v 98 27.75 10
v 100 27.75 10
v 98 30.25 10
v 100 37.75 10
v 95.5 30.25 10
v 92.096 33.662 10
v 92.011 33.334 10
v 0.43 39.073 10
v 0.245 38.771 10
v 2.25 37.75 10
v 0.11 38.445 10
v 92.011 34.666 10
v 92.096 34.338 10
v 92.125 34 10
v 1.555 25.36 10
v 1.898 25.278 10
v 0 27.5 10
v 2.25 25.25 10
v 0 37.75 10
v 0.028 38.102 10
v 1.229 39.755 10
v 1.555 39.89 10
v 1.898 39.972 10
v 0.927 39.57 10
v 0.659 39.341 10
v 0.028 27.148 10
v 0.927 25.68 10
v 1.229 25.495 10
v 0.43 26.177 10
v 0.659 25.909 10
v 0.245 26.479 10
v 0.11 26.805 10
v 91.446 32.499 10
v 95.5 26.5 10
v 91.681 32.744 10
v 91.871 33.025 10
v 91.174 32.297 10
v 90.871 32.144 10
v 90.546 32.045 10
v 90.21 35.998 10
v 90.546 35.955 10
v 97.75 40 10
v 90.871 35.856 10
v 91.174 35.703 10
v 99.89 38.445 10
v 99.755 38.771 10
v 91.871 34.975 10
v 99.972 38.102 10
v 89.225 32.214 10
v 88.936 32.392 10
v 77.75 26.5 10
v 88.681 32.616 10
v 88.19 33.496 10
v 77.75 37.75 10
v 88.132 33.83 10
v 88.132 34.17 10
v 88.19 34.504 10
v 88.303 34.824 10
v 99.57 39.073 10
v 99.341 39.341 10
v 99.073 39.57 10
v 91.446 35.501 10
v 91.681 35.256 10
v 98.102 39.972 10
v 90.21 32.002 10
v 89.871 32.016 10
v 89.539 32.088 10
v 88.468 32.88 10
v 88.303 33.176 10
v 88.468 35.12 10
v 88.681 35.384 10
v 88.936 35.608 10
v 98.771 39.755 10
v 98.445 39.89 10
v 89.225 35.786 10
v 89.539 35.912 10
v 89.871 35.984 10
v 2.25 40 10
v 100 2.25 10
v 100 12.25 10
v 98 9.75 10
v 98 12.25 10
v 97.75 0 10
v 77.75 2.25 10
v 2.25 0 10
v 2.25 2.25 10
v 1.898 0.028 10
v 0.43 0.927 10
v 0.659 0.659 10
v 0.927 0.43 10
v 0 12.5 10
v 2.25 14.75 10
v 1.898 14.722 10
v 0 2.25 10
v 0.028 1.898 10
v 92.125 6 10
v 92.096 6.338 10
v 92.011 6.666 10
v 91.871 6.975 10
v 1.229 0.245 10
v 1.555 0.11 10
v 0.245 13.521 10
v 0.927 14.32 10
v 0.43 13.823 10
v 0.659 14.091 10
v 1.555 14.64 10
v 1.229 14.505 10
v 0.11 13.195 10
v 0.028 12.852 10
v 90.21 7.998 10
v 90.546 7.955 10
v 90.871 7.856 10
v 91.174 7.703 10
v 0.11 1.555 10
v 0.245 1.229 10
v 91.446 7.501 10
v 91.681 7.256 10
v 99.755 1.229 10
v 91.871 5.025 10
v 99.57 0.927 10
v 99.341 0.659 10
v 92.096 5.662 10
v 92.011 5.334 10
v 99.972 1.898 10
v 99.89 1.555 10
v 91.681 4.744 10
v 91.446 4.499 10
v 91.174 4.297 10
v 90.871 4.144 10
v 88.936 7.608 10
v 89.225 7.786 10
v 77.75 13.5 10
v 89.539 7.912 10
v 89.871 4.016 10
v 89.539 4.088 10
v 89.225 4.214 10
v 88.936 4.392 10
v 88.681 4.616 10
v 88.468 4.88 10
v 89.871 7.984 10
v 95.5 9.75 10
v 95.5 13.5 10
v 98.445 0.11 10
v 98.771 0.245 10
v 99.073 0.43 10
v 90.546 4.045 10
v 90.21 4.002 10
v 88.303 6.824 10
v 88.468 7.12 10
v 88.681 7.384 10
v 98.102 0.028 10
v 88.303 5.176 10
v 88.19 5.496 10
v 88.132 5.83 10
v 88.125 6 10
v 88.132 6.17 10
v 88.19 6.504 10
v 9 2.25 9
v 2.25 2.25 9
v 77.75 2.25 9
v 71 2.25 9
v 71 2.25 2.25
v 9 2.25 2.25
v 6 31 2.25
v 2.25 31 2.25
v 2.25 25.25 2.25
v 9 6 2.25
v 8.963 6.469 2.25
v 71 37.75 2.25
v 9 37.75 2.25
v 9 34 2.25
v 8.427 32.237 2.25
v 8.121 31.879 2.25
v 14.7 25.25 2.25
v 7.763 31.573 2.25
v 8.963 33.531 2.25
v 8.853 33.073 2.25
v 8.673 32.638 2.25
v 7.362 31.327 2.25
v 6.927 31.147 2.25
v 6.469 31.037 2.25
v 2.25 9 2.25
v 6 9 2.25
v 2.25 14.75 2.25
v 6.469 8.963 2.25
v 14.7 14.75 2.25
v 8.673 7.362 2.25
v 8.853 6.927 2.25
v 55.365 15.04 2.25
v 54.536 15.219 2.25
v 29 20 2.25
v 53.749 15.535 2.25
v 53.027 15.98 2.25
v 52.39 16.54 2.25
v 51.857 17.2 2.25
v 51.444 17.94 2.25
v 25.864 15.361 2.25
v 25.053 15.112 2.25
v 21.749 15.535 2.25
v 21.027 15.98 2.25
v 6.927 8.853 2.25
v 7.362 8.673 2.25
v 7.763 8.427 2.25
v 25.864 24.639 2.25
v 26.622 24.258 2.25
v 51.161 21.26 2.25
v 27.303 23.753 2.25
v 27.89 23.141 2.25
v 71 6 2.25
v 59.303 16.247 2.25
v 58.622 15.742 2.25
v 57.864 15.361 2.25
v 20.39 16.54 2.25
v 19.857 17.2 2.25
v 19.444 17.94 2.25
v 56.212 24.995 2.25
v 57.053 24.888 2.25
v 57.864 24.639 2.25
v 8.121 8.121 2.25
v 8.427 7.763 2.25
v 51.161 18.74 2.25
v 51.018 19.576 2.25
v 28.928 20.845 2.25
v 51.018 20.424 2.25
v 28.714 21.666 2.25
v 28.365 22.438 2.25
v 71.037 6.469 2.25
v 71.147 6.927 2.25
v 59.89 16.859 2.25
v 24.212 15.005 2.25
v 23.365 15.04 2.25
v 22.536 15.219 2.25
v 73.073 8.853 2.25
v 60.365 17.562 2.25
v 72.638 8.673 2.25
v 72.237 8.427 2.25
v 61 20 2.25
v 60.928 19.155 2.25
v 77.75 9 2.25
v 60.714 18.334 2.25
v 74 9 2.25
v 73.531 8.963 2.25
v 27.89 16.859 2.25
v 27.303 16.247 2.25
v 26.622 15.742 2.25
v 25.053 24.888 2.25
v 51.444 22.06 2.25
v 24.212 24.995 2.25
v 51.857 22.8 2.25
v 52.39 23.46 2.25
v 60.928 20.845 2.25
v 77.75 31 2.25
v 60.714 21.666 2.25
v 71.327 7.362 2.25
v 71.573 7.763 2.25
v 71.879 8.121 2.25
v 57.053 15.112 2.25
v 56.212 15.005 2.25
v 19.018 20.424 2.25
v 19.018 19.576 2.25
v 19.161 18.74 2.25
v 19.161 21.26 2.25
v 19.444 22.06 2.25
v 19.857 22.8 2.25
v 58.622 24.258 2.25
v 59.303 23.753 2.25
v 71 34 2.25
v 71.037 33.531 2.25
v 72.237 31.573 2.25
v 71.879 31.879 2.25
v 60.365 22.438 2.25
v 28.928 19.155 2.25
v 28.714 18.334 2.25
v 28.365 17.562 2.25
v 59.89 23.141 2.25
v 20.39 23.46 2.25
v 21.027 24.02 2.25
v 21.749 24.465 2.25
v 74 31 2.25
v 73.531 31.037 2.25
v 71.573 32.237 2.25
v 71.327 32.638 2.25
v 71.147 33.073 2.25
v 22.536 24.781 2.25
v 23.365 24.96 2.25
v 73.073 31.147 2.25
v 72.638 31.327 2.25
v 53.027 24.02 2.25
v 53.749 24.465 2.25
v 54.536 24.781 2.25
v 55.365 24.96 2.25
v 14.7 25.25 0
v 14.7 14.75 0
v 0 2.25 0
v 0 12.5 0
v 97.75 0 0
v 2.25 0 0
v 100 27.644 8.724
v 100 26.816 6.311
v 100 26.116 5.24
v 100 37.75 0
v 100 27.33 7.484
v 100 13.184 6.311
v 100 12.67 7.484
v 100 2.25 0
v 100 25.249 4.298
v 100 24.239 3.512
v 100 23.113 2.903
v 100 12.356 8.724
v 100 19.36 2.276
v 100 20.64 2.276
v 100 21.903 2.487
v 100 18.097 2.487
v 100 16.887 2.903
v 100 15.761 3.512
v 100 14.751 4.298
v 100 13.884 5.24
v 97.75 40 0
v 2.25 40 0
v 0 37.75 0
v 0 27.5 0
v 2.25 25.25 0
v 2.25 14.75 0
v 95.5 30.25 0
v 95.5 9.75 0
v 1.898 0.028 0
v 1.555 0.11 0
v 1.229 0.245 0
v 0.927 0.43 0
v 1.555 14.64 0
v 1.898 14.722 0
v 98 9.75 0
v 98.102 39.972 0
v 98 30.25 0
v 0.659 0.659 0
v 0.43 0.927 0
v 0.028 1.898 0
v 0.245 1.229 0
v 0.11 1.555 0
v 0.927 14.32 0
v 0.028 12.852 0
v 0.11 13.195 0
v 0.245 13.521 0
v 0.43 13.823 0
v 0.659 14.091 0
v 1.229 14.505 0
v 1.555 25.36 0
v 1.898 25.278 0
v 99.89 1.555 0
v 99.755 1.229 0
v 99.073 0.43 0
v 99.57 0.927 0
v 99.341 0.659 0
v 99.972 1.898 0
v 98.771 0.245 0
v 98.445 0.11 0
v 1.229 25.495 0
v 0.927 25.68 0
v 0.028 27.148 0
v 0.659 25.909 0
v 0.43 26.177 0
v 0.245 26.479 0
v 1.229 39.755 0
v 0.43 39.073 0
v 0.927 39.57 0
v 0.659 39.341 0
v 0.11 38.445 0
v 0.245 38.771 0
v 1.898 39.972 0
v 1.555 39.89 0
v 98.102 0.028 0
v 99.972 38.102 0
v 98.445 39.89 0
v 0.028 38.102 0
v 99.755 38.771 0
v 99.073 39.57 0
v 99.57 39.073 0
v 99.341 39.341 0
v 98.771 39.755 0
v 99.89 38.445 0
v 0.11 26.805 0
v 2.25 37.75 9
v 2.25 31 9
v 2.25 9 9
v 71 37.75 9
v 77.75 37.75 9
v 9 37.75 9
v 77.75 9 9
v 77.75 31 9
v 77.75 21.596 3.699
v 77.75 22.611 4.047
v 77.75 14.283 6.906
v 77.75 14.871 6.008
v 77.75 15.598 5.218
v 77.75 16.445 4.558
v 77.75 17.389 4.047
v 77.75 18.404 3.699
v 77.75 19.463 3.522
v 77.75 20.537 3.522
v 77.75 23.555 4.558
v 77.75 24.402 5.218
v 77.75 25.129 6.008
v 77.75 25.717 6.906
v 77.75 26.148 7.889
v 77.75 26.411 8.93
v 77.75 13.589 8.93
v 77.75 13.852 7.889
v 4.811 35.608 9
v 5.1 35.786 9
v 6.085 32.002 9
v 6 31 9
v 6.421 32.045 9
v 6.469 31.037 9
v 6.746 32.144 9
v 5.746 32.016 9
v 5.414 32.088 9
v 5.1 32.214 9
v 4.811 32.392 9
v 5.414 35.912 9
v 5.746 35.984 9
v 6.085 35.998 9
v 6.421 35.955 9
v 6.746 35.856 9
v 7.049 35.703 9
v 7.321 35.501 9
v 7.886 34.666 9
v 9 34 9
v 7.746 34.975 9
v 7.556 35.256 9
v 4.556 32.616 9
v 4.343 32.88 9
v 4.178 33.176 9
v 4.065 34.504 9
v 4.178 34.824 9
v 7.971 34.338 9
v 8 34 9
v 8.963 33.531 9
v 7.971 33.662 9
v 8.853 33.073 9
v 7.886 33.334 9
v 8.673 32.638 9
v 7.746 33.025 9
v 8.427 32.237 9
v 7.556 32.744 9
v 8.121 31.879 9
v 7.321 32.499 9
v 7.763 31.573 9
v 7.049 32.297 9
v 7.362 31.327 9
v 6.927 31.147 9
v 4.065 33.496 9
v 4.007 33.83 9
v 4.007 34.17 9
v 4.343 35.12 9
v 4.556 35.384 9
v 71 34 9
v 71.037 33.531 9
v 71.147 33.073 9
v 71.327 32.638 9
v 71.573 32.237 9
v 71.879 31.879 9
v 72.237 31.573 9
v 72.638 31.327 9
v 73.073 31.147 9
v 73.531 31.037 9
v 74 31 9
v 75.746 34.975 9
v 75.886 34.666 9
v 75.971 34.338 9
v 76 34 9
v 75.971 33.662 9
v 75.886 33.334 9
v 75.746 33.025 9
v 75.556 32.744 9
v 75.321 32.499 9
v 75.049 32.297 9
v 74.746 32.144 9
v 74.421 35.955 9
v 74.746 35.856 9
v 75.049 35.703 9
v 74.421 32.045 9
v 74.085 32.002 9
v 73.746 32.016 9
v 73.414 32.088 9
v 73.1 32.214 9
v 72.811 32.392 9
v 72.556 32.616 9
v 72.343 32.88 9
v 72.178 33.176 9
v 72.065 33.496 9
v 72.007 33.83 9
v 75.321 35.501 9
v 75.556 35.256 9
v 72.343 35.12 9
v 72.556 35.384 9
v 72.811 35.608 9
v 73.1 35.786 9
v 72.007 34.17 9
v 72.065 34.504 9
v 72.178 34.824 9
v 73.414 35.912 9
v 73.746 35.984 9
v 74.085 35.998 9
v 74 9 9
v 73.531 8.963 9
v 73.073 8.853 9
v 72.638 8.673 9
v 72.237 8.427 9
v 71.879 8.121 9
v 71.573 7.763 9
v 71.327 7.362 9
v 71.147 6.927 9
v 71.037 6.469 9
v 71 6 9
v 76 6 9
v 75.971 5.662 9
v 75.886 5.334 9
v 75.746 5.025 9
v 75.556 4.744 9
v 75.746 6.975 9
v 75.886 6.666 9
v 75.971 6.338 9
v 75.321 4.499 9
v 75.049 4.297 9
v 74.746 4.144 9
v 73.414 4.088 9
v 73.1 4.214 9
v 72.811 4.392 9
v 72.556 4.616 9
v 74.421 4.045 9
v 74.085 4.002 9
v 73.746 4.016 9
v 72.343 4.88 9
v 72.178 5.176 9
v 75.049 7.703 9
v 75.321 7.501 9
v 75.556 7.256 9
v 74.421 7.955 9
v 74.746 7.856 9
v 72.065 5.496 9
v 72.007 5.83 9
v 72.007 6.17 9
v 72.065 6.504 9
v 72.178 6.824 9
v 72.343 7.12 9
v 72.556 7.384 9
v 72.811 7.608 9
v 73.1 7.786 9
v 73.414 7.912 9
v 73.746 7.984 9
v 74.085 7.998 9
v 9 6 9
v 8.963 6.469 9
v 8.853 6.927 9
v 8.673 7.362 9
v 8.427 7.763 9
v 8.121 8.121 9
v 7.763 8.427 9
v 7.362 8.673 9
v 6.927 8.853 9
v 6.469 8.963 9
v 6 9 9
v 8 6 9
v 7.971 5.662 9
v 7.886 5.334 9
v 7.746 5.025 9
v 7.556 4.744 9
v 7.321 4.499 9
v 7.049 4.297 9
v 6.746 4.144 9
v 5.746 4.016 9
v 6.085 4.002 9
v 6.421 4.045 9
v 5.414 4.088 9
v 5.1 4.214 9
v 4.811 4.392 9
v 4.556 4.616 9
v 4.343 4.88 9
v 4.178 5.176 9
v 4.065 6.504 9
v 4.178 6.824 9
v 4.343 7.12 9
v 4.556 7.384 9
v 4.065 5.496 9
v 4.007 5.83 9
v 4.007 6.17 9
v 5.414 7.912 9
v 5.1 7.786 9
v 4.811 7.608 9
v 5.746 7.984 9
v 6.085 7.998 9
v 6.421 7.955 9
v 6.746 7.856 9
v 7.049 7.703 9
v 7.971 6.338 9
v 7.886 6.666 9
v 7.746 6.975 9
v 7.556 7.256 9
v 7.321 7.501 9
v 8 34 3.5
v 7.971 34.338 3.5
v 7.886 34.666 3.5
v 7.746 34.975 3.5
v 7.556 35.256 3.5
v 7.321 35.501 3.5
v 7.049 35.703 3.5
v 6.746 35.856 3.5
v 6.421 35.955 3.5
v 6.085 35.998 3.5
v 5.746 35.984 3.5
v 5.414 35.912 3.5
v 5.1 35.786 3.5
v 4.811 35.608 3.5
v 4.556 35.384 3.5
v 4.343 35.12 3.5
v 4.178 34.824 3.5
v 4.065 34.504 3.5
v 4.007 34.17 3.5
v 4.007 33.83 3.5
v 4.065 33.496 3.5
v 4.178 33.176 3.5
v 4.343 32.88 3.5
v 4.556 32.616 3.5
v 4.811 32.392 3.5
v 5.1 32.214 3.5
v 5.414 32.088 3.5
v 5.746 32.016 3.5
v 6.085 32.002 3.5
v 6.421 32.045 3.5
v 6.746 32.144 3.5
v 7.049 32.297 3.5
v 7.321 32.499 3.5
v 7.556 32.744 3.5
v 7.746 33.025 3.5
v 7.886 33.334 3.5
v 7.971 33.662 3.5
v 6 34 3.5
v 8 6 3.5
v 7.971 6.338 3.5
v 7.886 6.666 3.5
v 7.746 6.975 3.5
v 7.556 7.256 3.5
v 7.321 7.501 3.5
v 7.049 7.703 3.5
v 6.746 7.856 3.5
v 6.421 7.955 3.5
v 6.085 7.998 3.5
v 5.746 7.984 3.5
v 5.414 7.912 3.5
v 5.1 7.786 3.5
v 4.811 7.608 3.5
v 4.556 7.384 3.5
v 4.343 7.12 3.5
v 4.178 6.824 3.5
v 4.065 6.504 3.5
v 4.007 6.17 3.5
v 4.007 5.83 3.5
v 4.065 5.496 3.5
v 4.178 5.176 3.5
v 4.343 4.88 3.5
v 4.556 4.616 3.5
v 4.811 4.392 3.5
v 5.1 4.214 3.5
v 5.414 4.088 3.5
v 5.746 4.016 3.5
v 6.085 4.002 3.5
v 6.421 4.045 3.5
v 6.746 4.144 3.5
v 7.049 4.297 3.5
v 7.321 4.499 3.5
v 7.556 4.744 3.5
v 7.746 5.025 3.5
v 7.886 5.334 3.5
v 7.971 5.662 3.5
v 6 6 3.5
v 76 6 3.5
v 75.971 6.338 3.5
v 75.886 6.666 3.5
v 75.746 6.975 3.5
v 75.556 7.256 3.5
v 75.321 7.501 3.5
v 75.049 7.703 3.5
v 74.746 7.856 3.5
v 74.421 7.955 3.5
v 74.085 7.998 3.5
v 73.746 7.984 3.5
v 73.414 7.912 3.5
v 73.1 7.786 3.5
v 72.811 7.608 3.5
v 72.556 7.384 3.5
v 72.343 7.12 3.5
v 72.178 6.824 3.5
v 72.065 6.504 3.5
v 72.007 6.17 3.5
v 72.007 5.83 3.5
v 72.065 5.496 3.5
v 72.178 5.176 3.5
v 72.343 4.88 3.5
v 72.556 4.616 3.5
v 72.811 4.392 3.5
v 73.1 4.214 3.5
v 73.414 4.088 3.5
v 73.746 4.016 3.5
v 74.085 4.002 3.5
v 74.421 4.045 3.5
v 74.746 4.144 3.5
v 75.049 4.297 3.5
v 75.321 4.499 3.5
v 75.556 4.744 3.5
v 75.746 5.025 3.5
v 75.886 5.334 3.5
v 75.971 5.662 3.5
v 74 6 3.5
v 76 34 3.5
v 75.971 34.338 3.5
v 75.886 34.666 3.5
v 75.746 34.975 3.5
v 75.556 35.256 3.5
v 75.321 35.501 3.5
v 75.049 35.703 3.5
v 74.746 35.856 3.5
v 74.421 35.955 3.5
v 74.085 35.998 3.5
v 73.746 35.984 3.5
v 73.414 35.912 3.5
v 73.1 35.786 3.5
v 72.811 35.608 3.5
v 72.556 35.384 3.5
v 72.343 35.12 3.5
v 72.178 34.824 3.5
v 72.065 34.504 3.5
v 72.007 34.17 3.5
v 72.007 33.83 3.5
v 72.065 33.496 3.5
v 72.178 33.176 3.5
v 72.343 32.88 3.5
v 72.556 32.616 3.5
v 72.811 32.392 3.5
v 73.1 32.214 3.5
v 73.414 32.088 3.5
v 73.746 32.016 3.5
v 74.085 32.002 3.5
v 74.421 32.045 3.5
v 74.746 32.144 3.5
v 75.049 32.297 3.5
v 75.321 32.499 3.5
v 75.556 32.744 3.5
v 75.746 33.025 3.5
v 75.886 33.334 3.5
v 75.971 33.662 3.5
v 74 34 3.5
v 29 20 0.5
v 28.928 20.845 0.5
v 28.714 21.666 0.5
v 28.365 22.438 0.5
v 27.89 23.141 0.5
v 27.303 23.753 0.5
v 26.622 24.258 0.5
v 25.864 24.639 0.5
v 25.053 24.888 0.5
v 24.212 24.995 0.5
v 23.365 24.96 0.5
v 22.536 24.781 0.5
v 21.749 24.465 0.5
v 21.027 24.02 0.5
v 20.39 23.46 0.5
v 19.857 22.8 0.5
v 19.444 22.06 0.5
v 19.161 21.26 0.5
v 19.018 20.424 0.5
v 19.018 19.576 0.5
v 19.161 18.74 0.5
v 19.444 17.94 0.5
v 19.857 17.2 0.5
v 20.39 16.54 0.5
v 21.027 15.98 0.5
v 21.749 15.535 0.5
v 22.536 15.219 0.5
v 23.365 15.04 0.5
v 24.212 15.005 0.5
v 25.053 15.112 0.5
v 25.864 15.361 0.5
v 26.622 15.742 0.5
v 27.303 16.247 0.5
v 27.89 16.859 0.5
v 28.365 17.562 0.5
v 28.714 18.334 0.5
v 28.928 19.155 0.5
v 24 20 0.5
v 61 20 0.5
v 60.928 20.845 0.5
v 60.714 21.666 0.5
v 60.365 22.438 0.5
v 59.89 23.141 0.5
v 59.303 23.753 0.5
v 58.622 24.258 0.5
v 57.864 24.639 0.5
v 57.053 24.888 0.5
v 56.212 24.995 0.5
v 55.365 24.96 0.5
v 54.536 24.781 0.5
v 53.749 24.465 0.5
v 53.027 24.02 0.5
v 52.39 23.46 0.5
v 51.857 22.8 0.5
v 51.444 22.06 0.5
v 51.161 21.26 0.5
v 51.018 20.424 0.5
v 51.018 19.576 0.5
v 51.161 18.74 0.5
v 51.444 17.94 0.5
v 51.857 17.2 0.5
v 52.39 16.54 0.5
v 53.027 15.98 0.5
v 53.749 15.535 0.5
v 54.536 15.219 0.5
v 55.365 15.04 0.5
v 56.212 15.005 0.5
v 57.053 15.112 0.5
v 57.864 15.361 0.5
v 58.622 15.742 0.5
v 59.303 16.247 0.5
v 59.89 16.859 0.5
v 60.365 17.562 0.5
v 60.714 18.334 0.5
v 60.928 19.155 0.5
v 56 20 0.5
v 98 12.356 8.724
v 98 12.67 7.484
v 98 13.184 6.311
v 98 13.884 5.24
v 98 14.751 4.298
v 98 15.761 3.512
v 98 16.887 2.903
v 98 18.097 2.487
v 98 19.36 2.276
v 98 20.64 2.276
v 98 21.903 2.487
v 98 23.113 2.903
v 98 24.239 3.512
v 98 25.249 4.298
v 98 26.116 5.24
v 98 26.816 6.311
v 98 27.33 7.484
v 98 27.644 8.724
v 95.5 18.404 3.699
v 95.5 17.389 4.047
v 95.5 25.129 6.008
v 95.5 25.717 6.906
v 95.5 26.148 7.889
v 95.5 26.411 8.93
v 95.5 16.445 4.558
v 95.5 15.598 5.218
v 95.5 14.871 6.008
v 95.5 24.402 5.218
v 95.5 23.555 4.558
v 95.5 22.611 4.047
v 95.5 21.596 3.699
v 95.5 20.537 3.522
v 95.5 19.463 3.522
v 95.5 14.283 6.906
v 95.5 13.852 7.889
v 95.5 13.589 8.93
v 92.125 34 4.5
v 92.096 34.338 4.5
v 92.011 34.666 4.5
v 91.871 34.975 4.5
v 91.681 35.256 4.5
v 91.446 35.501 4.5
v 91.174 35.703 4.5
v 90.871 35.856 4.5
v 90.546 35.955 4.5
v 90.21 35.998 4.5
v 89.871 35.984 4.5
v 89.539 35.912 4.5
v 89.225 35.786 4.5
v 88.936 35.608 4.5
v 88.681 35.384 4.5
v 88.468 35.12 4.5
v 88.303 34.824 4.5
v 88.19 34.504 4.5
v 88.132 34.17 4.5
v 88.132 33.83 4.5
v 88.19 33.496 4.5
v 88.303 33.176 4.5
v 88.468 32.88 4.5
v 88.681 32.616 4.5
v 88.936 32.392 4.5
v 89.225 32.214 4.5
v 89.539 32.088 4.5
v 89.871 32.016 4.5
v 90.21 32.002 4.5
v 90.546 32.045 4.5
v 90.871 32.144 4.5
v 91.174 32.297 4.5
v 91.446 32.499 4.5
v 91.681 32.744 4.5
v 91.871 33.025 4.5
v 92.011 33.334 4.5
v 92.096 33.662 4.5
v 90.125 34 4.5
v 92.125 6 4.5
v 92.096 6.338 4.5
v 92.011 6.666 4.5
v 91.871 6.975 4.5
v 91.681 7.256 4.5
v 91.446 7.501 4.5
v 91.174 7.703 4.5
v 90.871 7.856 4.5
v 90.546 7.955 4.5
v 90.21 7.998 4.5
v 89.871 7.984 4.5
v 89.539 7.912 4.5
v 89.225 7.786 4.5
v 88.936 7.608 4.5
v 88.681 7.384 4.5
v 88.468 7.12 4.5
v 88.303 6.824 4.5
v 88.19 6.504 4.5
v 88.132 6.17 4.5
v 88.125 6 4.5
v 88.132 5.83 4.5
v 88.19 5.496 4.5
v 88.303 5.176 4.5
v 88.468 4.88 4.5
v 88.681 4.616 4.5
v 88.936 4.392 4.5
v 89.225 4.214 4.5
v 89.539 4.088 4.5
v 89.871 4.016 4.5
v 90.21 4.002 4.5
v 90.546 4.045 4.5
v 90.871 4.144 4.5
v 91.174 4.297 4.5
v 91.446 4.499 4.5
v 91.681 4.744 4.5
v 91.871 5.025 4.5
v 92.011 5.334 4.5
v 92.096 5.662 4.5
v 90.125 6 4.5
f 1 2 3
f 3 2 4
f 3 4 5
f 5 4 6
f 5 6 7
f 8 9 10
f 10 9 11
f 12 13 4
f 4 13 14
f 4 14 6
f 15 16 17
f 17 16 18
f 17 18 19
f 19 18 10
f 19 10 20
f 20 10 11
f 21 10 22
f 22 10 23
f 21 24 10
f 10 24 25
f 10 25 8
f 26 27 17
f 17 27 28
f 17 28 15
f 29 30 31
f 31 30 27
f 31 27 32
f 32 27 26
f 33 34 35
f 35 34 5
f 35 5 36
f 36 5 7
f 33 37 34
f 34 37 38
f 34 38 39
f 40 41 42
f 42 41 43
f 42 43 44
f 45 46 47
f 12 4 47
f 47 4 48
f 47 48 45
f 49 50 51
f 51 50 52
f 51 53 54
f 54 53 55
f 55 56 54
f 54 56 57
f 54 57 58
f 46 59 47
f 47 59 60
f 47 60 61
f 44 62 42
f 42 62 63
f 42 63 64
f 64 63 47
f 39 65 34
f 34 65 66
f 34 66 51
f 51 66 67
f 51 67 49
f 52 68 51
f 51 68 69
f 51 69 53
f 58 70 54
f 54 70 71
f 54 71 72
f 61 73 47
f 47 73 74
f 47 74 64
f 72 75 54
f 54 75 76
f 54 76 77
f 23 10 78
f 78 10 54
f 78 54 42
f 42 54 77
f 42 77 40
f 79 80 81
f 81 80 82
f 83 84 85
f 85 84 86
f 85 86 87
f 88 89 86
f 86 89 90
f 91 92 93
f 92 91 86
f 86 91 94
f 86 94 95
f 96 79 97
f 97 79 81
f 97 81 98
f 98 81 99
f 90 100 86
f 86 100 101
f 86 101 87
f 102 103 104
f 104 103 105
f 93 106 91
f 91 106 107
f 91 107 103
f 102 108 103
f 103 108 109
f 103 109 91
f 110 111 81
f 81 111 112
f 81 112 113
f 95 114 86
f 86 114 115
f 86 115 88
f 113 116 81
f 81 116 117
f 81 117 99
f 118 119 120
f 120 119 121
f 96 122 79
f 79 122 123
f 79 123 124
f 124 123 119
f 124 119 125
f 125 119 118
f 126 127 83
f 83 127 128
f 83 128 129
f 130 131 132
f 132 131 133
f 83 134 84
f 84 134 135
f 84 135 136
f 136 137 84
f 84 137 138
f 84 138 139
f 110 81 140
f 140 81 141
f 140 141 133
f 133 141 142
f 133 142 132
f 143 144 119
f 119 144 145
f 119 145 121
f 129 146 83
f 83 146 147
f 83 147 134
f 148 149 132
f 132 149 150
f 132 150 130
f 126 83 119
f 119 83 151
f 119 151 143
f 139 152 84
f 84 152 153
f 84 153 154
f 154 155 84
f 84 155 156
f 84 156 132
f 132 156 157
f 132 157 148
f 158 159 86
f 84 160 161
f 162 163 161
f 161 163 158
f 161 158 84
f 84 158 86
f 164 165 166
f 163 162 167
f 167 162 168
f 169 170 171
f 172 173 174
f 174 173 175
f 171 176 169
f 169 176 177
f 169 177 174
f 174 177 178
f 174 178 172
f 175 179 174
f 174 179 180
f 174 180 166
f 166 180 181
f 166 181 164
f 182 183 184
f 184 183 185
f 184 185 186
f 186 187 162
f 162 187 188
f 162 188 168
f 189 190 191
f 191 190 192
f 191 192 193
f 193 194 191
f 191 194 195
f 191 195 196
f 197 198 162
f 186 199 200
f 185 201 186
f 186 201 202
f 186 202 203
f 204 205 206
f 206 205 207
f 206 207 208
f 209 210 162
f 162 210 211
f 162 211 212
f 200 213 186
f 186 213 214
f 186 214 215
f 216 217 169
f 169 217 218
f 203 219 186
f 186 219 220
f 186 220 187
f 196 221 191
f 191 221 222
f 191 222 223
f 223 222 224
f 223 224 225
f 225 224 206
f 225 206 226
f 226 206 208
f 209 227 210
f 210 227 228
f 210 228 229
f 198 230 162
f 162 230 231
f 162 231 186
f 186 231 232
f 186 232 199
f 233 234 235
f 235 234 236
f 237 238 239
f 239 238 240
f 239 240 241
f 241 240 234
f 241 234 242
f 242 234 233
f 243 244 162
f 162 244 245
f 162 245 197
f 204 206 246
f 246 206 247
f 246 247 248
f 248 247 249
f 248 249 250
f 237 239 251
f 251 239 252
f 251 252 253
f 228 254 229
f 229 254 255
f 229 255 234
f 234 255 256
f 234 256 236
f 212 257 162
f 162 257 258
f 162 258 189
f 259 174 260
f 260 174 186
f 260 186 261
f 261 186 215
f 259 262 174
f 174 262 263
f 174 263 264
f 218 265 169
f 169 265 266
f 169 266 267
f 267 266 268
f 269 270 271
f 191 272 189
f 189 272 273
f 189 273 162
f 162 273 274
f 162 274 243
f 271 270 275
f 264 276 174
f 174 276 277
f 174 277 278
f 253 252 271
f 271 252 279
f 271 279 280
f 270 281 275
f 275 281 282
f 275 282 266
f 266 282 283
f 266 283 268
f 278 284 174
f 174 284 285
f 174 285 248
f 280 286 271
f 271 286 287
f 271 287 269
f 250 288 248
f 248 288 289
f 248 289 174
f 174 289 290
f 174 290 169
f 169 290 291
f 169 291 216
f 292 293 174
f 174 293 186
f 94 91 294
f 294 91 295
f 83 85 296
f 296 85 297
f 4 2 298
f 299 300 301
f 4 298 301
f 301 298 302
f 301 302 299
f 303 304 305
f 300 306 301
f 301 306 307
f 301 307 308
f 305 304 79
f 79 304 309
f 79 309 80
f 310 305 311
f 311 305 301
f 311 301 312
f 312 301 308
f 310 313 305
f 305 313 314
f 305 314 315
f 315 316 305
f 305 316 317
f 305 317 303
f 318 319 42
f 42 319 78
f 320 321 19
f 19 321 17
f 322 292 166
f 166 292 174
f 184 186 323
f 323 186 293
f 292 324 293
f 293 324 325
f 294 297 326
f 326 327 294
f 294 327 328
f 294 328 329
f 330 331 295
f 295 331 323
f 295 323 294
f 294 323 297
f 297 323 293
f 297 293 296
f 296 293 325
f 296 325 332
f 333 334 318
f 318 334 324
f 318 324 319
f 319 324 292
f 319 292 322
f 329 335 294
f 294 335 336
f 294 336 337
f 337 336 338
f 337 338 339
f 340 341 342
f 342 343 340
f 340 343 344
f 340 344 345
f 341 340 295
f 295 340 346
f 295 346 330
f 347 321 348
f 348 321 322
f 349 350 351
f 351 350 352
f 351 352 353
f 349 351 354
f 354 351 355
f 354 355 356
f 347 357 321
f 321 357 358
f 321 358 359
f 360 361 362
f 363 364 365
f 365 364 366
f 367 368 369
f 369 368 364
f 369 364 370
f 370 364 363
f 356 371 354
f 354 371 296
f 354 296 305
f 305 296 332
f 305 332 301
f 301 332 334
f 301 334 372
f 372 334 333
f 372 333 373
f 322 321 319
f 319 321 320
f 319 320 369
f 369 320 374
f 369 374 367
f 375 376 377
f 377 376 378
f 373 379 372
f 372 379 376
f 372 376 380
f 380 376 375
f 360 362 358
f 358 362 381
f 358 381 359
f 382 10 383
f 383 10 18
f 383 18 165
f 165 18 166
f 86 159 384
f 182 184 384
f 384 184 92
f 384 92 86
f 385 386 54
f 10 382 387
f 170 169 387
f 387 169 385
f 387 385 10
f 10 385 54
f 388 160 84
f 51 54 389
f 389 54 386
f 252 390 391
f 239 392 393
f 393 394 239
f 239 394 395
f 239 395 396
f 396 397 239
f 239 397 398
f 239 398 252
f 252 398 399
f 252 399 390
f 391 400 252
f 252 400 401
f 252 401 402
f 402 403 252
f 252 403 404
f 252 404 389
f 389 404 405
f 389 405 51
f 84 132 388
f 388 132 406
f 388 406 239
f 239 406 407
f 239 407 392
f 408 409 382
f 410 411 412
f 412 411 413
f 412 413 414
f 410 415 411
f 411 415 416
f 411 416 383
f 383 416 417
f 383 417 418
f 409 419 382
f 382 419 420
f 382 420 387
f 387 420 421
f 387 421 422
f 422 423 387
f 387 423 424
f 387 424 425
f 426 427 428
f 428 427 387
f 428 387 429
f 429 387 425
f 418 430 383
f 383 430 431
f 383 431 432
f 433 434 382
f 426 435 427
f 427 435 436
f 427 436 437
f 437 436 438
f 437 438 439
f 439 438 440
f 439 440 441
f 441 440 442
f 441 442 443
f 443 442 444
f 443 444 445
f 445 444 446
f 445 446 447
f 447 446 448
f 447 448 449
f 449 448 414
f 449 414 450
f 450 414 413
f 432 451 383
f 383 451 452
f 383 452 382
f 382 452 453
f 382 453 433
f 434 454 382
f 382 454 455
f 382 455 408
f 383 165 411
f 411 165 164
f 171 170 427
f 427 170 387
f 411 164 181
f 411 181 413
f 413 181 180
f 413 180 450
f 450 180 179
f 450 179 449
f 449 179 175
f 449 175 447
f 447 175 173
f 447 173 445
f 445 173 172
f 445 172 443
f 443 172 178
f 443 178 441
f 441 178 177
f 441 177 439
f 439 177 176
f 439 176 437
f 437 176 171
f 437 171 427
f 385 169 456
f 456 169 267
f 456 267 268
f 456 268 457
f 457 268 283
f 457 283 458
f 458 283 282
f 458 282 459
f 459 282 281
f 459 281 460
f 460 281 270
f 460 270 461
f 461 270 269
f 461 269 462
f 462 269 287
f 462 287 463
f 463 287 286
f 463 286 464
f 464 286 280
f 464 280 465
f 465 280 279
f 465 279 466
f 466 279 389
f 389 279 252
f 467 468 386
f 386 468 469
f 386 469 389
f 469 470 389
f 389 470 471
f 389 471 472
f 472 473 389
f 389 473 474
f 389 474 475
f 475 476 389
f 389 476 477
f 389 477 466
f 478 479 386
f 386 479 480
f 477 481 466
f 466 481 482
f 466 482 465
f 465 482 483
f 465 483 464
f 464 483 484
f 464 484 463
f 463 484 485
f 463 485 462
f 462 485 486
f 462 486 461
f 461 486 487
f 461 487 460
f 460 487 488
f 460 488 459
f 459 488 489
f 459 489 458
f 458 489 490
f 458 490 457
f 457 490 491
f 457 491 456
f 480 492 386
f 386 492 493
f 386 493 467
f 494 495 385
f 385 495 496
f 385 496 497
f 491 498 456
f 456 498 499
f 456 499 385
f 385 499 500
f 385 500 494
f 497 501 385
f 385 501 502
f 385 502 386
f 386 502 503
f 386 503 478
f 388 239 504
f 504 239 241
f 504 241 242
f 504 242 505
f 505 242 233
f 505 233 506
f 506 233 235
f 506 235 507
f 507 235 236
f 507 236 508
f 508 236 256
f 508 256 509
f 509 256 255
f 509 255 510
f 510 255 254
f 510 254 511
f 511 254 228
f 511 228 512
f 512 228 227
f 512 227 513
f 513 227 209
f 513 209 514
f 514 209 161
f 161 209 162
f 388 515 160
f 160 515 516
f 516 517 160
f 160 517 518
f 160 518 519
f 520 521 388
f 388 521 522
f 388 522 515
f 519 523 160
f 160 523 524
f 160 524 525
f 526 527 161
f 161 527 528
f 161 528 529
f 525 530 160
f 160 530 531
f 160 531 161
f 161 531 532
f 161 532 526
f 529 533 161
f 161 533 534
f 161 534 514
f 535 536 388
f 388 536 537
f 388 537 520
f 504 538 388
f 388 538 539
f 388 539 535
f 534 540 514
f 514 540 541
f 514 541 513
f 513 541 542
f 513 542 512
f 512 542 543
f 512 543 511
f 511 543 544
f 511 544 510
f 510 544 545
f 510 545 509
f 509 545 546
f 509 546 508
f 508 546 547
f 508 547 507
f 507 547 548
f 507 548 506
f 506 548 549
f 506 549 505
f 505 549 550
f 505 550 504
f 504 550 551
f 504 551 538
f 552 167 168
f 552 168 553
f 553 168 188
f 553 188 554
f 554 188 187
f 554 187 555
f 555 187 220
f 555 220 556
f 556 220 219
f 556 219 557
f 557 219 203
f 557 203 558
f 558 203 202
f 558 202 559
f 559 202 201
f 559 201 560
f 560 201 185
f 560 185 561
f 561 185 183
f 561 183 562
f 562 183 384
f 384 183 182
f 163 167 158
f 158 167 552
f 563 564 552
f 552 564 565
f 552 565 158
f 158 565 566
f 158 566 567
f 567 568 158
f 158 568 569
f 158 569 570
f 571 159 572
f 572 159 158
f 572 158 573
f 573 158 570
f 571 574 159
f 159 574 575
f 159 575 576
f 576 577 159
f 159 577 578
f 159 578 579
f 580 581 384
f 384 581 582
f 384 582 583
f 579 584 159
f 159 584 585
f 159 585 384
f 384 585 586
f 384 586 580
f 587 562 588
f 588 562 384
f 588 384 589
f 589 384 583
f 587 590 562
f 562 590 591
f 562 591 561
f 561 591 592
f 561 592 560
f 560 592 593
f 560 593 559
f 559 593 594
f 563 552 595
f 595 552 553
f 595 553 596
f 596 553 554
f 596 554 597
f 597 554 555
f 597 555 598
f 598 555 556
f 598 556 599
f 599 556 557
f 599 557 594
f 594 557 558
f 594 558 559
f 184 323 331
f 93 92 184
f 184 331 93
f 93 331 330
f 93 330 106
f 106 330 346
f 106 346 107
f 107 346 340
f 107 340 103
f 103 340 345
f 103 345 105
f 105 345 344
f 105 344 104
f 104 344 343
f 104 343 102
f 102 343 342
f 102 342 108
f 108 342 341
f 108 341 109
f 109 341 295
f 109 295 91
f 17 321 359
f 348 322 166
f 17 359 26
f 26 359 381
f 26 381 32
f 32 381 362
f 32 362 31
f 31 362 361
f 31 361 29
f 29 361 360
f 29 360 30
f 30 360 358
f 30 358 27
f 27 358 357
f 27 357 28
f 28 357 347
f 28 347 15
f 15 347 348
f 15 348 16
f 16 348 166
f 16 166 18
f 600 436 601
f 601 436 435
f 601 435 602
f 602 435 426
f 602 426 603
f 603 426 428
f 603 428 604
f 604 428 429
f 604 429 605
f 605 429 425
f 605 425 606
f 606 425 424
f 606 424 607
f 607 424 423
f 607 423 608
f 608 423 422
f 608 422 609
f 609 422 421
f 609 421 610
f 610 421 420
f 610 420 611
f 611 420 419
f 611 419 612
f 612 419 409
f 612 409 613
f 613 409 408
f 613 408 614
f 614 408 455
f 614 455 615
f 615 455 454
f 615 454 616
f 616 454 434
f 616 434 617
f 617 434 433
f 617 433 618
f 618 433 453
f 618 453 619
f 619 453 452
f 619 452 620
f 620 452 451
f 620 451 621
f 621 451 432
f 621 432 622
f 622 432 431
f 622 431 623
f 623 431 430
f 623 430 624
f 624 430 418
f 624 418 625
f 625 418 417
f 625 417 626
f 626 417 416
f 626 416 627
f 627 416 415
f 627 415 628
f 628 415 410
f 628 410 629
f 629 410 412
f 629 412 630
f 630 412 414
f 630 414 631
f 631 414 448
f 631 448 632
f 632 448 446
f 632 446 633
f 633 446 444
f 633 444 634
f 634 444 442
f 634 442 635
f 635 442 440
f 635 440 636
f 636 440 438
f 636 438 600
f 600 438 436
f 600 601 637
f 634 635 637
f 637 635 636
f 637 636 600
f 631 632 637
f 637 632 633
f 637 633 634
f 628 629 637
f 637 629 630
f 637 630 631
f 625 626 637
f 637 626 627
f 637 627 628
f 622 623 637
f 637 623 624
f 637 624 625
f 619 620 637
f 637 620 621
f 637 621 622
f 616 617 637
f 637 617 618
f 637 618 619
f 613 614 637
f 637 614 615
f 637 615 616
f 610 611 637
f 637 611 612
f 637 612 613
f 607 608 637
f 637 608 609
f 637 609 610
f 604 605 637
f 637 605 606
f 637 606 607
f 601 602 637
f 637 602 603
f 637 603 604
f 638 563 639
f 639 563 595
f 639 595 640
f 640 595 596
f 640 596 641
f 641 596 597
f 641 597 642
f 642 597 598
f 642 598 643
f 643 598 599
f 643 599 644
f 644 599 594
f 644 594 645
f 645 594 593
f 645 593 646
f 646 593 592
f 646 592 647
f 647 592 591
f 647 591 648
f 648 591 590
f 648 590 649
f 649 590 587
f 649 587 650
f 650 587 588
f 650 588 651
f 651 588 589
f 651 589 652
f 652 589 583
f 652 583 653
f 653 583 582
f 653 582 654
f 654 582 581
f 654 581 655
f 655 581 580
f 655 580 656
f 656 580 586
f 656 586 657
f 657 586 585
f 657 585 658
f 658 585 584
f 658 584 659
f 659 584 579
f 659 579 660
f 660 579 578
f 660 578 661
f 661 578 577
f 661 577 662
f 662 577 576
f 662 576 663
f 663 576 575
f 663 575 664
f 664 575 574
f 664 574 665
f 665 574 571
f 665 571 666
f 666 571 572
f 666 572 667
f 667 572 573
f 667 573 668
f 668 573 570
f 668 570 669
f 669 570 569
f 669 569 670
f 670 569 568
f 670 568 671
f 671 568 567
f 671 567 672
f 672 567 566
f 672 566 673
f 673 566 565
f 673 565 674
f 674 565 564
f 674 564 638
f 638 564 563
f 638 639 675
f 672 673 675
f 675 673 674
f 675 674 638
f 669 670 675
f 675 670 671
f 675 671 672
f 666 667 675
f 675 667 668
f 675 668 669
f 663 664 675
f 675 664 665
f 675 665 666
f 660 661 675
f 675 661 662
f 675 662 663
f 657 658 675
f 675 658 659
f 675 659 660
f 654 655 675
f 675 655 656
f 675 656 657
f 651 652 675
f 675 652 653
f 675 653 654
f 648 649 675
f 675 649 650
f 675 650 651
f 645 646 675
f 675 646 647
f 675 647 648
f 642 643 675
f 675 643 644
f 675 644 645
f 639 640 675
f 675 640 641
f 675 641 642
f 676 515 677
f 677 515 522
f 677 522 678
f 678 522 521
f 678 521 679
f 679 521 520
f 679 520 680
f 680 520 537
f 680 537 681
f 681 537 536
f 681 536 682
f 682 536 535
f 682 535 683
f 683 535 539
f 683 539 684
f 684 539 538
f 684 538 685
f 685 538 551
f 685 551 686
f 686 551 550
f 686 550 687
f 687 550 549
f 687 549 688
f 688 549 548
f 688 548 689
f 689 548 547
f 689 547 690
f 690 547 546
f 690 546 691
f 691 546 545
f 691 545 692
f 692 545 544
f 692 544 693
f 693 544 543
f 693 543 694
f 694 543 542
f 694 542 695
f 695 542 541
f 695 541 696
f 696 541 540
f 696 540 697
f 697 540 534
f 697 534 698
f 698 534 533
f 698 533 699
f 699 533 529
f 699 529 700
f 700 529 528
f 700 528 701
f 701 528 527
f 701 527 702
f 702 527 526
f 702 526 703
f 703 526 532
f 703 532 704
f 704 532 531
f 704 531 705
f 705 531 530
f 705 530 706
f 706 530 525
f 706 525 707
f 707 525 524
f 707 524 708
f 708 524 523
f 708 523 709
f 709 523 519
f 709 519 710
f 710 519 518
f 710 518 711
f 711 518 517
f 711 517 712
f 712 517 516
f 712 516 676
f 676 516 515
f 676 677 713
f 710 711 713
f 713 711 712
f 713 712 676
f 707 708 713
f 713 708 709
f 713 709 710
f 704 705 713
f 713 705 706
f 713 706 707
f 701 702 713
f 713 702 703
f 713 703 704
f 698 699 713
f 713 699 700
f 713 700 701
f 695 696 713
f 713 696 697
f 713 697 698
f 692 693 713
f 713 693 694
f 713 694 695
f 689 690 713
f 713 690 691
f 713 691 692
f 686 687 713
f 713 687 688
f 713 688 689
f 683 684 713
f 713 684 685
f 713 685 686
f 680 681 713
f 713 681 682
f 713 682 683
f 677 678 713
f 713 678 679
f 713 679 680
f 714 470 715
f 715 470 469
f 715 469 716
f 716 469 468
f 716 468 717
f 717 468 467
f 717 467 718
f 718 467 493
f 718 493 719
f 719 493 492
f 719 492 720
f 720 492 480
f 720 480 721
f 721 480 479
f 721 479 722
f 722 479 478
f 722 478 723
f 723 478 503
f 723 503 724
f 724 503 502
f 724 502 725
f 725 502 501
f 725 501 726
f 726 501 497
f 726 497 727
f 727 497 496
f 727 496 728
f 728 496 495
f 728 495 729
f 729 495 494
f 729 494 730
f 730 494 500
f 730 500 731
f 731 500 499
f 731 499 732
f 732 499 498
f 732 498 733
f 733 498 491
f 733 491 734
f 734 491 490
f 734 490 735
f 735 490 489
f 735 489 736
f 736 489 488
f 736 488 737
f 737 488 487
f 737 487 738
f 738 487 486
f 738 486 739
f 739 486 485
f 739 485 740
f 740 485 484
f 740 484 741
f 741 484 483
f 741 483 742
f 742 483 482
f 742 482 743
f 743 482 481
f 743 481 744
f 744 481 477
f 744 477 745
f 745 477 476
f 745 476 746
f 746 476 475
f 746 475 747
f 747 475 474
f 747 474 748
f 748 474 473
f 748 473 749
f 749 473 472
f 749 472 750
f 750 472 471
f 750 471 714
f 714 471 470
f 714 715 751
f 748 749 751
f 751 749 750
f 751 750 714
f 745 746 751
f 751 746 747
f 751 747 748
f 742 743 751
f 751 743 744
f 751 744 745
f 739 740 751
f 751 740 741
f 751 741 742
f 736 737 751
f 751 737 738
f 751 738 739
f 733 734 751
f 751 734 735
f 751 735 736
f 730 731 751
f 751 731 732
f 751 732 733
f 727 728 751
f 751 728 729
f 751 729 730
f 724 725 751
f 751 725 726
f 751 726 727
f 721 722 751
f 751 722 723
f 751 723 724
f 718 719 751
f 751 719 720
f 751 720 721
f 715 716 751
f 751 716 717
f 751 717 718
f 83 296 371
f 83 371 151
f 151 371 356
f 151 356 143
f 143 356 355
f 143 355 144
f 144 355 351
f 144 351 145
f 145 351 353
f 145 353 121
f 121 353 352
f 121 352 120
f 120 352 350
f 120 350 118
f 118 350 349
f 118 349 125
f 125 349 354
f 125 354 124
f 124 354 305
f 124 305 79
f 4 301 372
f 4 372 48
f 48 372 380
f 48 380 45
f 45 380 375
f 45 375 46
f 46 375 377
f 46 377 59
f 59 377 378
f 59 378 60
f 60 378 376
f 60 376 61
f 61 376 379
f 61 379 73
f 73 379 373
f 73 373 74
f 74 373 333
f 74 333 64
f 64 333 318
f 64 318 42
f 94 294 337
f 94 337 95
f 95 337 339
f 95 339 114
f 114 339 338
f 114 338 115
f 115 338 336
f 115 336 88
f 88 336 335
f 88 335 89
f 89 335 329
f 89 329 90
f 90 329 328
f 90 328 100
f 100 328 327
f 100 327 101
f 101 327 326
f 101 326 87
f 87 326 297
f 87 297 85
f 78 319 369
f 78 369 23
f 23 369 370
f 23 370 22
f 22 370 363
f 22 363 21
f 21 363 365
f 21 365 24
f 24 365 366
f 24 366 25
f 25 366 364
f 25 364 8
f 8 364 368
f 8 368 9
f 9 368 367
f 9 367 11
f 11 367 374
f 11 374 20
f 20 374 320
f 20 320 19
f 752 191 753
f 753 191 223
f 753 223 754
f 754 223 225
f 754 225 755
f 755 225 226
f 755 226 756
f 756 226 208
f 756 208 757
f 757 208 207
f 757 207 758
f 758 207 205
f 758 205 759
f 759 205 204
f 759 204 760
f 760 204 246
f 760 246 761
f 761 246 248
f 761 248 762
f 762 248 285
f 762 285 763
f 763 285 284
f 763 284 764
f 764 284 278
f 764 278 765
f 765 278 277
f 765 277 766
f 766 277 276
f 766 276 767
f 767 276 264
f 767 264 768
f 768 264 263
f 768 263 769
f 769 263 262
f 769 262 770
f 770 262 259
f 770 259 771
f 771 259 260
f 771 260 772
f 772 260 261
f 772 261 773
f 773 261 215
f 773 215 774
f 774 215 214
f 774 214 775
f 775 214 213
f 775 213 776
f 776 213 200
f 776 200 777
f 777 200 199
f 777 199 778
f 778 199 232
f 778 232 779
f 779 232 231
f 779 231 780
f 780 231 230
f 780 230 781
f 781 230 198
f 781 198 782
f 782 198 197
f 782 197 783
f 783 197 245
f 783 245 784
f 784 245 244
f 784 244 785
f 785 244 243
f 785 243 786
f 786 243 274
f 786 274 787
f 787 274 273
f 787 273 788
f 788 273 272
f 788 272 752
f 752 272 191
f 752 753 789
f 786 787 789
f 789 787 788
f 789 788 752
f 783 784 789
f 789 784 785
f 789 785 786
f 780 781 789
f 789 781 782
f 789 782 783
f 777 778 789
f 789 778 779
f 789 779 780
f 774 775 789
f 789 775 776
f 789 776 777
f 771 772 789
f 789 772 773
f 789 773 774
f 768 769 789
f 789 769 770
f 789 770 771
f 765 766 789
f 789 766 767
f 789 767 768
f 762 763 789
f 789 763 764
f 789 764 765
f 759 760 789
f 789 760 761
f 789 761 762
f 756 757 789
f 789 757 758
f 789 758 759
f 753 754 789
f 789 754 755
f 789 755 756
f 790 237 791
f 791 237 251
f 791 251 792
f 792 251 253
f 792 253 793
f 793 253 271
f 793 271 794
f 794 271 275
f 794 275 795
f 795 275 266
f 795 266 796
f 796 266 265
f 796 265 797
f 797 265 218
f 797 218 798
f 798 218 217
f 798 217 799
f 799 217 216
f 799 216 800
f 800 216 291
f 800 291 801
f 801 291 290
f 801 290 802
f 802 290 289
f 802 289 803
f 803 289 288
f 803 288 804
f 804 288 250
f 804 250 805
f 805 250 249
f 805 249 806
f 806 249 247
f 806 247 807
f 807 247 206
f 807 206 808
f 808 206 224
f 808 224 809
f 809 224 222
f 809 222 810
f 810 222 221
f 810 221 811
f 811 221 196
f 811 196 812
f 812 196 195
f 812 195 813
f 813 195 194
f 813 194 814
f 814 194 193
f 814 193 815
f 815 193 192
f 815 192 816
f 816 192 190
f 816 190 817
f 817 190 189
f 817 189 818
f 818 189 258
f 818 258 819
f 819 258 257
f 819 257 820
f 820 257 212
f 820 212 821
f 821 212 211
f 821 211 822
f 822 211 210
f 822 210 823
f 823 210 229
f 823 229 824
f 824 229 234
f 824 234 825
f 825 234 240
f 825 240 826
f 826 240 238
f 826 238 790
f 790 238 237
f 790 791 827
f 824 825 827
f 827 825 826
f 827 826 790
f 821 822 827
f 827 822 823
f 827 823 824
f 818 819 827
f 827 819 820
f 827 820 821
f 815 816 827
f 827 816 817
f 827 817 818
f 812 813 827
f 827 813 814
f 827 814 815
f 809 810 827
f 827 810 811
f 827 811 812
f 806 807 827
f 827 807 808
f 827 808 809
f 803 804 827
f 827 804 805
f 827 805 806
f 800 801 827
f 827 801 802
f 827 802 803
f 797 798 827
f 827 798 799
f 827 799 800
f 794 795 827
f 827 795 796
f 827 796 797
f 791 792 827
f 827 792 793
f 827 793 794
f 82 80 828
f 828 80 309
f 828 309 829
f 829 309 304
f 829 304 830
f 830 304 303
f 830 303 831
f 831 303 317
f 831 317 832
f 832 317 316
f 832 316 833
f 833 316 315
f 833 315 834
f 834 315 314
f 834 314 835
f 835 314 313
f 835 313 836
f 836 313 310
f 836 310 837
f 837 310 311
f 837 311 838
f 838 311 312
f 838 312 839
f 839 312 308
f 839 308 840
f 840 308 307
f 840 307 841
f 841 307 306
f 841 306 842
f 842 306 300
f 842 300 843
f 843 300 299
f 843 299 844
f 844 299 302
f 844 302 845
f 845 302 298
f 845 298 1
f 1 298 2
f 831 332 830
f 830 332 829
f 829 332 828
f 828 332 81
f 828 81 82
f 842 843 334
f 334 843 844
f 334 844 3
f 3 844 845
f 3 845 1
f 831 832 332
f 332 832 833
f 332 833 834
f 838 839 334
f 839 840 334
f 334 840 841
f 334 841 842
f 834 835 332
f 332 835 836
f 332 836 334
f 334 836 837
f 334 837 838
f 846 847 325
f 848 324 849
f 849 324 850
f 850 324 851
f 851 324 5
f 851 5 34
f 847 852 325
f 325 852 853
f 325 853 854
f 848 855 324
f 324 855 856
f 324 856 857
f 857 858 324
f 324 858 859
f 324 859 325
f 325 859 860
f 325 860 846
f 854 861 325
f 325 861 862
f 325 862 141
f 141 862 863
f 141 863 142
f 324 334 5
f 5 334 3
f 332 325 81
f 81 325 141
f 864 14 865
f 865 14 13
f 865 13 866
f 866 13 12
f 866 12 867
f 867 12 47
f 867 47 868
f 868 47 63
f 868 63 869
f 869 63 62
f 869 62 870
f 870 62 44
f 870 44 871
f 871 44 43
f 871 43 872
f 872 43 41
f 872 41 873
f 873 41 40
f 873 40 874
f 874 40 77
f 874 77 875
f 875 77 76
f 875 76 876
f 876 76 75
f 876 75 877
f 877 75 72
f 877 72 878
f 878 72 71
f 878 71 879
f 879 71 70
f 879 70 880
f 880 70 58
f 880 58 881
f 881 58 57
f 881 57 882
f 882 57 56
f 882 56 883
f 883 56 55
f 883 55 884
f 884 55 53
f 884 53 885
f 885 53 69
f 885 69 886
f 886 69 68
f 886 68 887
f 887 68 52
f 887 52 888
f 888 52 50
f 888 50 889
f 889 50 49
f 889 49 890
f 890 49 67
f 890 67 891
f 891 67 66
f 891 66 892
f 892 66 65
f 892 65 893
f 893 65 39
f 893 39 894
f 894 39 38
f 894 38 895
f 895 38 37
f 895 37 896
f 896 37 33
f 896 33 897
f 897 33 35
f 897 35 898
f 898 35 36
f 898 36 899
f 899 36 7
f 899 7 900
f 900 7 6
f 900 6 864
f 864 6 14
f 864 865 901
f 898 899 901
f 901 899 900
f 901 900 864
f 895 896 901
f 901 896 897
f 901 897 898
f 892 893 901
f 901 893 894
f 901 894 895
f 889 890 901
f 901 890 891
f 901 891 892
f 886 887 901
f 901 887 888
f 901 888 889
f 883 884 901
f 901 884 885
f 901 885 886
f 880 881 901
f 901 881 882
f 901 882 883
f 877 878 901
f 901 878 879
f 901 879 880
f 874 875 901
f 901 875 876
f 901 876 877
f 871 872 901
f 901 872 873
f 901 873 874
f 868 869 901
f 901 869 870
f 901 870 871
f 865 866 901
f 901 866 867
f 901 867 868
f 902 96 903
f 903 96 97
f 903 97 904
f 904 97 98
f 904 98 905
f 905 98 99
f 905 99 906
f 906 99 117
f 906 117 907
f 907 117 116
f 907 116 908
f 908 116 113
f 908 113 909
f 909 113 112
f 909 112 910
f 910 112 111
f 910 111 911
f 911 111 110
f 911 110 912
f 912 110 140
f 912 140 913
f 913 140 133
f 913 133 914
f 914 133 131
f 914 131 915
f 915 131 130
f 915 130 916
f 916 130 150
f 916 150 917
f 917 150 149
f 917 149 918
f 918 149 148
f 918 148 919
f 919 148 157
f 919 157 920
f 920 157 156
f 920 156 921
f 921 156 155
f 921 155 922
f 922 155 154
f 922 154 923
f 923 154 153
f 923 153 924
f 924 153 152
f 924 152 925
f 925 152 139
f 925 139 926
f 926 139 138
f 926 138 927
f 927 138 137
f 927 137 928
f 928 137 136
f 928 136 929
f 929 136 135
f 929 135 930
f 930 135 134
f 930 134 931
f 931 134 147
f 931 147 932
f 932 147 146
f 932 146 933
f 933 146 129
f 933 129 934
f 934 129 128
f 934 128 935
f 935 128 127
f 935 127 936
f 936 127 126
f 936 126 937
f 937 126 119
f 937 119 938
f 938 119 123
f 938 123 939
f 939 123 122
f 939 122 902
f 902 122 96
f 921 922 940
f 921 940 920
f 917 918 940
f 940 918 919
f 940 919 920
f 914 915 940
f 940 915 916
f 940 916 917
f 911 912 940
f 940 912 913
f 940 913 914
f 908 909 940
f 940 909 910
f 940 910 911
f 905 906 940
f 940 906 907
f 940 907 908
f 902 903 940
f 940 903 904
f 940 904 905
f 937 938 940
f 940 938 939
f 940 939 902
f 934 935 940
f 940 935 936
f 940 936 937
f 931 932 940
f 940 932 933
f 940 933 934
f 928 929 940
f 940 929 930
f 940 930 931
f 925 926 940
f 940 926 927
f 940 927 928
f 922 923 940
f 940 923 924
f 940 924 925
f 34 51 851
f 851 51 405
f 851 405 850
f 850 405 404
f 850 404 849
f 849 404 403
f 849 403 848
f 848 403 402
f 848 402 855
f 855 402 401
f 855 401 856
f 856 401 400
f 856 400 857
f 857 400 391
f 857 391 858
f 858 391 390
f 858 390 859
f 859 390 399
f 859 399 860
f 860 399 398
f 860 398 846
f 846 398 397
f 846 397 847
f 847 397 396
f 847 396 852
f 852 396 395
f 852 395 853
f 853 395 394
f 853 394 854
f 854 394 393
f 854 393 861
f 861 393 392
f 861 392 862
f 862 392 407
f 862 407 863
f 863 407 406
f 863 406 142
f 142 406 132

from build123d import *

# Parameters (mm, degrees)
BODY_DEPTH          = 10
SKETCH10_W          = 75.5
SKETCH10_H          = 35.5
PCB_RECESS_DEPTH    = 7.75
SKETCH11_R          = 3
PCB_BOSS_DEPTH      = 6.75
FILLET2_R           = 2.25
SKETCH12_R          = 2
M3_INSERTS_DEPTH    = 5.5
FILLET3_R           = 2.25
SKETCH27_R          = 5
MAGNETS_DEPTH       = 1.75
SKETCH29_W          = 2
SKETCH29_H          = 7.75
SKETCH30_W          = 2.5
SKETCH30_H          = 20.5
HIROSE_MID_DEPTH    = 109.166538264
SKETCH31_R          = 2
CUT_EXTRUDE14_DEPTH = 5.5
SKETCH32_W          = 17.75
SKETCH32_H          = 6.5


with BuildPart() as part:
    # Sketch4 → body (new body)
    with BuildSketch(Plane.XY):
        Polygon((0, 40), (0, 25.25), (14.7, 25.25), (14.7, 14.75), (0, 14.75), (0, 0), (100, 0), (100, 40), align=None)
    extrude(amount=BODY_DEPTH)

    # Sketch10 → pcb-recess (cut)
    with BuildSketch(Plane.XY.offset(10)):
        with Locations((40, 20)):
            Rectangle(SKETCH10_W, SKETCH10_H)
    extrude(amount=-PCB_RECESS_DEPTH, mode=Mode.SUBTRACT)

    # Sketch11 → pcb-boss (add)
    with BuildSketch(Plane.XY.offset(2.25)):
        with Locations((6, 34)):
            Circle(SKETCH11_R)
        with BuildLine():
            ThreePointArc((6, 31), (3.878679656, 36.121320344), (9, 34))
            Line((9, 34), (9, 37.75))
            Line((9, 37.75), (2.25, 37.75))
            Line((2.25, 37.75), (2.25, 31))
            Line((2.25, 31), (6, 31))
        make_face()
        with BuildLine():
            Line((77.75, 37.75), (71, 37.75))
            Line((71, 37.75), (71, 34))
            ThreePointArc((71, 34), (74, 37), (77, 34))
            ThreePointArc((77, 34), (76.121320344, 31.878679656), (74, 31))
            Line((74, 31), (77.75, 31))
            Line((77.75, 31), (77.75, 37.75))
        make_face()
        with Locations((74, 34)):
            Circle(SKETCH11_R)
        with Locations((74, 6)):
            Circle(SKETCH11_R)
        with BuildLine():
            Line((77.75, 2.25), (77.75, 9))
            Line((77.75, 9), (74, 9))
            ThreePointArc((74, 9), (76.121320344, 8.121320344), (77, 6))
            ThreePointArc((77, 6), (74, 3), (71, 6))
            Line((71, 6), (71, 2.25))
            Line((71, 2.25), (77.75, 2.25))
        make_face()
        with Locations((6, 6)):
            Circle(SKETCH11_R)
        with BuildLine():
            Line((2.25, 2.25), (9, 2.25))
            Line((9, 2.25), (9, 6))
            ThreePointArc((9, 6), (3.878679656, 3.878679656), (6, 9))
            Line((6, 9), (2.25, 9))
            Line((2.25, 9), (2.25, 2.25))
        make_face()
    extrude(amount=PCB_BOSS_DEPTH)

    # Fillet2
    fillet2_edges = [part.edges().sort_by_distance(p)[0] for p in [
        (0, 14.75, 5),
        (0, 25.25, 5),
    ]]
    fillet(fillet2_edges, radius=FILLET2_R - 0.0001)  # a hair under: the kernel refuses the full size

    # Sketch12 → m3-inserts (cut)
    with BuildSketch(Plane.XY.offset(9)):
        with Locations((6, 34)):
            Circle(SKETCH12_R)
        with Locations((74, 34)):
            Circle(SKETCH12_R)
        with Locations((74, 6)):
            Circle(SKETCH12_R)
        with Locations((6, 6)):
            Circle(SKETCH12_R)
    extrude(amount=-M3_INSERTS_DEPTH, mode=Mode.SUBTRACT)

    # Fillet3
    fillet3_edges = [part.edges().sort_by_distance(p)[0] for p in [
        (0, 40, 5),
        (100, 40, 5),
        (100, 0, 5),
        (0, 0, 5),
    ]]
    fillet(fillet3_edges, radius=FILLET3_R)

    # Sketch27 → magnets (cut)
    with BuildSketch(Plane.XY.offset(2.25)):
        with Locations((24, 20)):
            Circle(SKETCH27_R)
        with Locations((56, 20)):
            Circle(SKETCH27_R)
    extrude(amount=-MAGNETS_DEPTH, mode=Mode.SUBTRACT)

    # Sketch29 → hirose-front (revolve, cut)
    with BuildSketch(Plane.XY.offset(10)):
        with Locations((99, 23.875)):
            Rectangle(SKETCH29_W, SKETCH29_H)
    revolve(axis=Axis((100, 20, 10), (-1, 0, 0)), mode=Mode.SUBTRACT)

    # Sketch30 → hirose-mid (cut, through all)
    with BuildSketch(Plane.XY.offset(10)):
        with Locations((96.75, 20)):
            Rectangle(SKETCH30_W, SKETCH30_H)
    extrude(amount=-HIROSE_MID_DEPTH, mode=Mode.SUBTRACT)

    # Sketch31 → Cut-Extrude14 (cut)
    with BuildSketch(Plane.XY.offset(10)):
        with Locations((90.125, 34)):
            Circle(SKETCH31_R)
        with Locations(Location((90.125, 6, 0), (0, 0, 180))):
            Circle(SKETCH31_R)
    extrude(amount=-CUT_EXTRUDE14_DEPTH, mode=Mode.SUBTRACT)

    # Sketch32 → hirose-back (revolve, cut)
    with BuildSketch(Plane.XY.offset(10)):
        with Locations((86.625, 23.25)):
            Rectangle(SKETCH32_W, SKETCH32_H)
    revolve(axis=Axis((77.75, 20, 10), (1, 0, 0)), mode=Mode.SUBTRACT)


solid = part.part
